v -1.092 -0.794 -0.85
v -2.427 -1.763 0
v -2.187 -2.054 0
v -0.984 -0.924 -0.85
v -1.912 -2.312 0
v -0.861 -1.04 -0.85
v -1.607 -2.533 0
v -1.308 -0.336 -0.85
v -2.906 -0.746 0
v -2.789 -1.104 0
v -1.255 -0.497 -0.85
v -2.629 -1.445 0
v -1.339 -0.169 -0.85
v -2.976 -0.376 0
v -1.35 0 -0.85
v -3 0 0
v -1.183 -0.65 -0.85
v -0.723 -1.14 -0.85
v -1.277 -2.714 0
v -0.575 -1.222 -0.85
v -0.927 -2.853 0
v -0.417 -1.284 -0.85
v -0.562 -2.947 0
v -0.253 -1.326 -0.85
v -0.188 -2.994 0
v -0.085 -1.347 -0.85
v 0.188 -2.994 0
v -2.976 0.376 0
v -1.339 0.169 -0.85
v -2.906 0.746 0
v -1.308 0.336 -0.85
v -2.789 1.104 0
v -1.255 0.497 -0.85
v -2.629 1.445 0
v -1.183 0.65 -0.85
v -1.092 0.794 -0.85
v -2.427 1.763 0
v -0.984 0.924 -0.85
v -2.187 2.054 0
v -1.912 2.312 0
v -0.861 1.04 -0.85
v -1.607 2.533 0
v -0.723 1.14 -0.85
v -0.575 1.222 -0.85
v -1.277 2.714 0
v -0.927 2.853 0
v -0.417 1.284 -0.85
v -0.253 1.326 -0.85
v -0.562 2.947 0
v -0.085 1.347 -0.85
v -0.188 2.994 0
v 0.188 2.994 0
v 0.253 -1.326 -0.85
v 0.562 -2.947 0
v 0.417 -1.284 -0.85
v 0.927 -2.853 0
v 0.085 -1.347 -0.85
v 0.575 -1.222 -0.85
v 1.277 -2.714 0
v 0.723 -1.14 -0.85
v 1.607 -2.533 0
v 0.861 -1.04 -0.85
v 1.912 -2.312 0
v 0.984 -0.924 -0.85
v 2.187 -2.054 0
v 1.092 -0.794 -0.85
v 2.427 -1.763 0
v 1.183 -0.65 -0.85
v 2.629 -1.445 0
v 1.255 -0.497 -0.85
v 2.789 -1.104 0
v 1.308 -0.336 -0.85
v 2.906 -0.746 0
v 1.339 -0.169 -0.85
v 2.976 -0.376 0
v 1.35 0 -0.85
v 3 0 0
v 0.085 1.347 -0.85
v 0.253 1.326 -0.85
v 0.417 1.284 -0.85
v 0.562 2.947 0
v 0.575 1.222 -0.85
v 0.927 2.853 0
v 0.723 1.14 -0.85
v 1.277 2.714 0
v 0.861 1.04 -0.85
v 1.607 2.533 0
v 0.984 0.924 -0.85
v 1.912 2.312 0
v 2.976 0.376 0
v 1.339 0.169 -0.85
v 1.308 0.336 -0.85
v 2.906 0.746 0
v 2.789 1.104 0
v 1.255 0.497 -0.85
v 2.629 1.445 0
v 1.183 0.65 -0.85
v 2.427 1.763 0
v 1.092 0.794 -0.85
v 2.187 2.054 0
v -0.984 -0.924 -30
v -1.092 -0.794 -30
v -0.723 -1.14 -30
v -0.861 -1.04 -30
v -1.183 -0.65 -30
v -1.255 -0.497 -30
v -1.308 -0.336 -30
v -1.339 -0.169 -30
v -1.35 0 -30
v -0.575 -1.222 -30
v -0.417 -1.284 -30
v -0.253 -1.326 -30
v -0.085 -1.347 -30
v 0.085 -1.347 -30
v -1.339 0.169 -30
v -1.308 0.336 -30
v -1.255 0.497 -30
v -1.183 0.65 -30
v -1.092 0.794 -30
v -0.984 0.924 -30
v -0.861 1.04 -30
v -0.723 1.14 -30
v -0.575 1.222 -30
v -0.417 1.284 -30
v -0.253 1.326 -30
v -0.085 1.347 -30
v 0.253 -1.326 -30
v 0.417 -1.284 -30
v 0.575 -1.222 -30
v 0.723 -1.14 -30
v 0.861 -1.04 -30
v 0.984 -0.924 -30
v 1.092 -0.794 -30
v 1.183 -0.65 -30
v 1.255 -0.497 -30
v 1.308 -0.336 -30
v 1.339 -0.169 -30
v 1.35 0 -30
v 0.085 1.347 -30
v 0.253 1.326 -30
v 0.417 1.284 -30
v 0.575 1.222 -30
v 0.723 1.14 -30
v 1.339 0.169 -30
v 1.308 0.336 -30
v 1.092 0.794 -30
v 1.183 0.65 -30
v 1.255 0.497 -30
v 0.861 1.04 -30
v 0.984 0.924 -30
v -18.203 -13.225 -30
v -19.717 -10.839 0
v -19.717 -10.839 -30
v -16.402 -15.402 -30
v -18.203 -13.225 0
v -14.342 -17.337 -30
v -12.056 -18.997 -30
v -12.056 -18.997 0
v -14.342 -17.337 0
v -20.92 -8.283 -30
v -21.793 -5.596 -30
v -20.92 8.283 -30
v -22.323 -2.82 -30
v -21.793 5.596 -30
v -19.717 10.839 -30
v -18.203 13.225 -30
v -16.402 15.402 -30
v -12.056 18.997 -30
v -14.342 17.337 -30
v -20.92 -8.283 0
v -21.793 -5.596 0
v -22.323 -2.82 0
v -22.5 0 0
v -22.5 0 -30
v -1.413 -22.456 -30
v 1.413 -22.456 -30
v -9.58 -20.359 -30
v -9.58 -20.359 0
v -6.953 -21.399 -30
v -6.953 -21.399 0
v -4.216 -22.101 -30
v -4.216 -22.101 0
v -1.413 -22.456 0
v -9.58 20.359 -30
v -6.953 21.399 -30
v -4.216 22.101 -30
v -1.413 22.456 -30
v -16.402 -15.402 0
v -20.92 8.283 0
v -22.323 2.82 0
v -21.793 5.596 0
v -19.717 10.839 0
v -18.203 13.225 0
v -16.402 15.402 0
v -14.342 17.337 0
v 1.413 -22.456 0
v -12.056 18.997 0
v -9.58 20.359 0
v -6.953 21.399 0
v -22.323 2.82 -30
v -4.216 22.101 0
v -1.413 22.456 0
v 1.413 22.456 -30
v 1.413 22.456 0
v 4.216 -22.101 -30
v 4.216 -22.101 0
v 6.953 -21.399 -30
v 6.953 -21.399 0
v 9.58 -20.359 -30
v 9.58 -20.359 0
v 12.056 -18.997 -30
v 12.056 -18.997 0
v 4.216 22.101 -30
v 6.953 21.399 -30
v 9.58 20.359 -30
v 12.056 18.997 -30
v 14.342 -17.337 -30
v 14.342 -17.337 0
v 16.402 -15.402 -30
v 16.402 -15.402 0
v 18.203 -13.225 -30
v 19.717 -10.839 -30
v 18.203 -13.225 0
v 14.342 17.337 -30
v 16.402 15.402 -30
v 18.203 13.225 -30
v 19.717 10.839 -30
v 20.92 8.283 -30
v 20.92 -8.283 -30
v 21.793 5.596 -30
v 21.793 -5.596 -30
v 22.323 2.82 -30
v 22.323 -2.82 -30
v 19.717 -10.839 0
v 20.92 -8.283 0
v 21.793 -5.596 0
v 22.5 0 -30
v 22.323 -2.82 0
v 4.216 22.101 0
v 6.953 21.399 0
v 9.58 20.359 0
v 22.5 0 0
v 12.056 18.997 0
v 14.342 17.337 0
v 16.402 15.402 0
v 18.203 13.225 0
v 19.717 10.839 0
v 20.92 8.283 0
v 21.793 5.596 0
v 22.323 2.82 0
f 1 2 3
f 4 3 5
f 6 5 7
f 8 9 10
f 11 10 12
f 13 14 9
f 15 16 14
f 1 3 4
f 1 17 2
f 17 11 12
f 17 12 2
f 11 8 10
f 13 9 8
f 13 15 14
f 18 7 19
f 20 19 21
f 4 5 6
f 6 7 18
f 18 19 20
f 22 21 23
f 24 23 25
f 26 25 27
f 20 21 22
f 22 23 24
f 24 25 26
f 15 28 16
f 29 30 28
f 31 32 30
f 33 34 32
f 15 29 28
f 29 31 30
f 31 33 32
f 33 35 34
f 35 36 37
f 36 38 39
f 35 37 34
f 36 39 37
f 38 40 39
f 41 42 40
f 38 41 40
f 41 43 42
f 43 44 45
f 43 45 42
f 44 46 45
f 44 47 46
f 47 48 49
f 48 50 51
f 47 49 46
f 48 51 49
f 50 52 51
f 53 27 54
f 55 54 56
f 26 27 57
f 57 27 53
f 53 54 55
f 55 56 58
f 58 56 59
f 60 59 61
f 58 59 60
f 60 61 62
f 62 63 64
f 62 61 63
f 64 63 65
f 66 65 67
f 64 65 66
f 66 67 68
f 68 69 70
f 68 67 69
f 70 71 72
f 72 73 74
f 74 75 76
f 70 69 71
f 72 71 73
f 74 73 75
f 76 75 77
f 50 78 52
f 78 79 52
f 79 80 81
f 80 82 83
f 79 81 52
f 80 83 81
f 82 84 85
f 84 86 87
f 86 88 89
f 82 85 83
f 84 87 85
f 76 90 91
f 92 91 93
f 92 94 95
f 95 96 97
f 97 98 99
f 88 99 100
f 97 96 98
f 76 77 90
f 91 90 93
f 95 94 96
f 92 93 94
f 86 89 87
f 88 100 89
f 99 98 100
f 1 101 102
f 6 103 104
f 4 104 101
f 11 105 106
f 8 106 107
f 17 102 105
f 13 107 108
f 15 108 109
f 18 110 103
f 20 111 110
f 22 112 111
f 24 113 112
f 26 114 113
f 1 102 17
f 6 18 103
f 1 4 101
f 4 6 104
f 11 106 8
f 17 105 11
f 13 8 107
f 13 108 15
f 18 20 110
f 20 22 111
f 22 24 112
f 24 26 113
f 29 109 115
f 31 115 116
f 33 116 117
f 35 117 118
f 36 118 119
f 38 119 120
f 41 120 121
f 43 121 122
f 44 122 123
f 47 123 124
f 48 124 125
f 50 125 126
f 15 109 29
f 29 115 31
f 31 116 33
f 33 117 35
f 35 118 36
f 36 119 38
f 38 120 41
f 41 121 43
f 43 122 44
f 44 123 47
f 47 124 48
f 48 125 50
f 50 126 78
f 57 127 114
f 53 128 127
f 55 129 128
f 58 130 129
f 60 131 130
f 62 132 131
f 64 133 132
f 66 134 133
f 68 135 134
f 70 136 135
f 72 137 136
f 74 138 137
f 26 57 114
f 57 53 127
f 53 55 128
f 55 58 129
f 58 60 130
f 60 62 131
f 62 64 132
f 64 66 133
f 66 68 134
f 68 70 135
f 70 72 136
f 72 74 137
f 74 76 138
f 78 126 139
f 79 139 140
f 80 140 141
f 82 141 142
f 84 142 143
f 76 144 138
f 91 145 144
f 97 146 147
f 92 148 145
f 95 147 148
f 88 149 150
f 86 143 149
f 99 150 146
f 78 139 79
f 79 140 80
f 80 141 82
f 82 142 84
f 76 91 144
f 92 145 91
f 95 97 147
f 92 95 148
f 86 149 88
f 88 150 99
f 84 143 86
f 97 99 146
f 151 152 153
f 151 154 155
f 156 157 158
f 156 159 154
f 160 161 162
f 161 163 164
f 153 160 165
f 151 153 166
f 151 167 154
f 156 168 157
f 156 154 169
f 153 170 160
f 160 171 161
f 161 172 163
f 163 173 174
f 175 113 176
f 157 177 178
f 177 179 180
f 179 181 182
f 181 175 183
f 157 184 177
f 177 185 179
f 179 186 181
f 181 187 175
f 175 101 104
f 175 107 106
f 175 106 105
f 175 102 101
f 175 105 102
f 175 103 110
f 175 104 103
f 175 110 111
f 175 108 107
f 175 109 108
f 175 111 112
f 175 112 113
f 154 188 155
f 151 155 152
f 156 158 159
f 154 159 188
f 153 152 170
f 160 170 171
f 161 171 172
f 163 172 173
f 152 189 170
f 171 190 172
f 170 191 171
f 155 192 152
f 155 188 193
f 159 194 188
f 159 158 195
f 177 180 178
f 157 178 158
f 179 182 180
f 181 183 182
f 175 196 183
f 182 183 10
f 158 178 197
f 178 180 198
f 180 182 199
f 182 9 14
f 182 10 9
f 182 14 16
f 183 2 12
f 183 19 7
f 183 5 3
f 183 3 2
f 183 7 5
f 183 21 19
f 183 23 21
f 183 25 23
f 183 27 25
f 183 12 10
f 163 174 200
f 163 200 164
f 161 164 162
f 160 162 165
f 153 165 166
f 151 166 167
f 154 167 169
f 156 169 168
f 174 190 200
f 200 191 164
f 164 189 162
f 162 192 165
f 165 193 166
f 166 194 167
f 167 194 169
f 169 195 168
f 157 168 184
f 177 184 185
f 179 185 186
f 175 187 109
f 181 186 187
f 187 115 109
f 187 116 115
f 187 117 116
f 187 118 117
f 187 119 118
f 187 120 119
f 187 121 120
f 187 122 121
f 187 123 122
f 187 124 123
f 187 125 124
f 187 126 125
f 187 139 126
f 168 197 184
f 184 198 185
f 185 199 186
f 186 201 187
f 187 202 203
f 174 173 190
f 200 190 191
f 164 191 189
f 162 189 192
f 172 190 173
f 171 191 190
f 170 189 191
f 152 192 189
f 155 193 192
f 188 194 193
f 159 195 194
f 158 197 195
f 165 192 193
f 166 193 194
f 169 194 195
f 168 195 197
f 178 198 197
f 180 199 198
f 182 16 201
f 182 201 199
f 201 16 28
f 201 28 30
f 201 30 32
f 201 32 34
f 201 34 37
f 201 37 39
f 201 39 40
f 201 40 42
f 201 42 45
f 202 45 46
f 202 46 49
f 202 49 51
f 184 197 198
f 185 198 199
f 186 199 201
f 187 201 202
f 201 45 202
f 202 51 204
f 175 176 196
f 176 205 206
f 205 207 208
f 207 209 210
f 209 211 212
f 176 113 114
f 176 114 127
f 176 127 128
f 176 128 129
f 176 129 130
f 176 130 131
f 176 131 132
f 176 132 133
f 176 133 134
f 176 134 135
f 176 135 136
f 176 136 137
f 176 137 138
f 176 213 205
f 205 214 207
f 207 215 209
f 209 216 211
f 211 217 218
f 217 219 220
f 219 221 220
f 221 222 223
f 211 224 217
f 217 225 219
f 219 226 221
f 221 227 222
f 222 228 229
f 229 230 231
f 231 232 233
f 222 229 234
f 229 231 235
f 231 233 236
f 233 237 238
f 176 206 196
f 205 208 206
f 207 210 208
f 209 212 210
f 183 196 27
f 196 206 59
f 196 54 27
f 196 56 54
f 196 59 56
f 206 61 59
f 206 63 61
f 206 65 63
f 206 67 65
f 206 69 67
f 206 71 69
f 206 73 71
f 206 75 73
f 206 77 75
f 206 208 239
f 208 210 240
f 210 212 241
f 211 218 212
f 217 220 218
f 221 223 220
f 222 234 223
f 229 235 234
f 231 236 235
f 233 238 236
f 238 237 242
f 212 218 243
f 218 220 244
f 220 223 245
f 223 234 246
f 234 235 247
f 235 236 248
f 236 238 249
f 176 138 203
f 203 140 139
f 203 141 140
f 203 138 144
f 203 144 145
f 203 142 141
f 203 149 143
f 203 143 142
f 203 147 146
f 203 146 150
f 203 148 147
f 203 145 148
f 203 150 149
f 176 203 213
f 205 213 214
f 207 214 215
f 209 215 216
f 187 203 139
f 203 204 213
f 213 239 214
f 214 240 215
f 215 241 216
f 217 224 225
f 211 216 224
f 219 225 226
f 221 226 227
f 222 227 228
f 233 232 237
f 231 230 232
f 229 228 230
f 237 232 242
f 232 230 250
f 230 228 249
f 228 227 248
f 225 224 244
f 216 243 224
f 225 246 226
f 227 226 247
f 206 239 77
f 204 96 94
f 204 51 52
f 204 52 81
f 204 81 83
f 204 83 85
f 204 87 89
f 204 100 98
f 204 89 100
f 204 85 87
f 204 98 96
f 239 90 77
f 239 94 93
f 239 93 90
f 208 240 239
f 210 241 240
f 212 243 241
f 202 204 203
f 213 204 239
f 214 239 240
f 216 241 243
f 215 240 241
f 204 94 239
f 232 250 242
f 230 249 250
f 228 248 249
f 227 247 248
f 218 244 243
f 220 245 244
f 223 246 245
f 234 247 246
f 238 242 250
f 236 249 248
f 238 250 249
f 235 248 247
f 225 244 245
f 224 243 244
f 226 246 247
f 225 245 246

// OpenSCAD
$fn = 50;


difference() {
	union() {
		translate(v = [0, 0, -30.0000000000]) {
			cylinder(h = 30, r = 22.5000000000);
		}
	}
	union() {
		translate(v = [0, 0, 0]) {
			rotate(a = [0, 0, 0]) {
				difference() {
					union() {
						translate(v = [0, 0, -33.0000000000]) {
							cylinder(h = 33, r = 1.0000000000);
						}
						translate(v = [0, 0, -0.8500000000]) {
							cylinder(h = 0.8500000000, r1 = 1.3500000000, r2 = 3.0000000000);
						}
						translate(v = [0, 0, -33.0000000000]) {
							cylinder(h = 33, r = 1.3500000000);
						}
						translate(v = [0, 0, -33.0000000000]) {
							cylinder(h = 33, r = 1.0000000000);
						}
					}
					union();
				}
			}
		}
	}
}
